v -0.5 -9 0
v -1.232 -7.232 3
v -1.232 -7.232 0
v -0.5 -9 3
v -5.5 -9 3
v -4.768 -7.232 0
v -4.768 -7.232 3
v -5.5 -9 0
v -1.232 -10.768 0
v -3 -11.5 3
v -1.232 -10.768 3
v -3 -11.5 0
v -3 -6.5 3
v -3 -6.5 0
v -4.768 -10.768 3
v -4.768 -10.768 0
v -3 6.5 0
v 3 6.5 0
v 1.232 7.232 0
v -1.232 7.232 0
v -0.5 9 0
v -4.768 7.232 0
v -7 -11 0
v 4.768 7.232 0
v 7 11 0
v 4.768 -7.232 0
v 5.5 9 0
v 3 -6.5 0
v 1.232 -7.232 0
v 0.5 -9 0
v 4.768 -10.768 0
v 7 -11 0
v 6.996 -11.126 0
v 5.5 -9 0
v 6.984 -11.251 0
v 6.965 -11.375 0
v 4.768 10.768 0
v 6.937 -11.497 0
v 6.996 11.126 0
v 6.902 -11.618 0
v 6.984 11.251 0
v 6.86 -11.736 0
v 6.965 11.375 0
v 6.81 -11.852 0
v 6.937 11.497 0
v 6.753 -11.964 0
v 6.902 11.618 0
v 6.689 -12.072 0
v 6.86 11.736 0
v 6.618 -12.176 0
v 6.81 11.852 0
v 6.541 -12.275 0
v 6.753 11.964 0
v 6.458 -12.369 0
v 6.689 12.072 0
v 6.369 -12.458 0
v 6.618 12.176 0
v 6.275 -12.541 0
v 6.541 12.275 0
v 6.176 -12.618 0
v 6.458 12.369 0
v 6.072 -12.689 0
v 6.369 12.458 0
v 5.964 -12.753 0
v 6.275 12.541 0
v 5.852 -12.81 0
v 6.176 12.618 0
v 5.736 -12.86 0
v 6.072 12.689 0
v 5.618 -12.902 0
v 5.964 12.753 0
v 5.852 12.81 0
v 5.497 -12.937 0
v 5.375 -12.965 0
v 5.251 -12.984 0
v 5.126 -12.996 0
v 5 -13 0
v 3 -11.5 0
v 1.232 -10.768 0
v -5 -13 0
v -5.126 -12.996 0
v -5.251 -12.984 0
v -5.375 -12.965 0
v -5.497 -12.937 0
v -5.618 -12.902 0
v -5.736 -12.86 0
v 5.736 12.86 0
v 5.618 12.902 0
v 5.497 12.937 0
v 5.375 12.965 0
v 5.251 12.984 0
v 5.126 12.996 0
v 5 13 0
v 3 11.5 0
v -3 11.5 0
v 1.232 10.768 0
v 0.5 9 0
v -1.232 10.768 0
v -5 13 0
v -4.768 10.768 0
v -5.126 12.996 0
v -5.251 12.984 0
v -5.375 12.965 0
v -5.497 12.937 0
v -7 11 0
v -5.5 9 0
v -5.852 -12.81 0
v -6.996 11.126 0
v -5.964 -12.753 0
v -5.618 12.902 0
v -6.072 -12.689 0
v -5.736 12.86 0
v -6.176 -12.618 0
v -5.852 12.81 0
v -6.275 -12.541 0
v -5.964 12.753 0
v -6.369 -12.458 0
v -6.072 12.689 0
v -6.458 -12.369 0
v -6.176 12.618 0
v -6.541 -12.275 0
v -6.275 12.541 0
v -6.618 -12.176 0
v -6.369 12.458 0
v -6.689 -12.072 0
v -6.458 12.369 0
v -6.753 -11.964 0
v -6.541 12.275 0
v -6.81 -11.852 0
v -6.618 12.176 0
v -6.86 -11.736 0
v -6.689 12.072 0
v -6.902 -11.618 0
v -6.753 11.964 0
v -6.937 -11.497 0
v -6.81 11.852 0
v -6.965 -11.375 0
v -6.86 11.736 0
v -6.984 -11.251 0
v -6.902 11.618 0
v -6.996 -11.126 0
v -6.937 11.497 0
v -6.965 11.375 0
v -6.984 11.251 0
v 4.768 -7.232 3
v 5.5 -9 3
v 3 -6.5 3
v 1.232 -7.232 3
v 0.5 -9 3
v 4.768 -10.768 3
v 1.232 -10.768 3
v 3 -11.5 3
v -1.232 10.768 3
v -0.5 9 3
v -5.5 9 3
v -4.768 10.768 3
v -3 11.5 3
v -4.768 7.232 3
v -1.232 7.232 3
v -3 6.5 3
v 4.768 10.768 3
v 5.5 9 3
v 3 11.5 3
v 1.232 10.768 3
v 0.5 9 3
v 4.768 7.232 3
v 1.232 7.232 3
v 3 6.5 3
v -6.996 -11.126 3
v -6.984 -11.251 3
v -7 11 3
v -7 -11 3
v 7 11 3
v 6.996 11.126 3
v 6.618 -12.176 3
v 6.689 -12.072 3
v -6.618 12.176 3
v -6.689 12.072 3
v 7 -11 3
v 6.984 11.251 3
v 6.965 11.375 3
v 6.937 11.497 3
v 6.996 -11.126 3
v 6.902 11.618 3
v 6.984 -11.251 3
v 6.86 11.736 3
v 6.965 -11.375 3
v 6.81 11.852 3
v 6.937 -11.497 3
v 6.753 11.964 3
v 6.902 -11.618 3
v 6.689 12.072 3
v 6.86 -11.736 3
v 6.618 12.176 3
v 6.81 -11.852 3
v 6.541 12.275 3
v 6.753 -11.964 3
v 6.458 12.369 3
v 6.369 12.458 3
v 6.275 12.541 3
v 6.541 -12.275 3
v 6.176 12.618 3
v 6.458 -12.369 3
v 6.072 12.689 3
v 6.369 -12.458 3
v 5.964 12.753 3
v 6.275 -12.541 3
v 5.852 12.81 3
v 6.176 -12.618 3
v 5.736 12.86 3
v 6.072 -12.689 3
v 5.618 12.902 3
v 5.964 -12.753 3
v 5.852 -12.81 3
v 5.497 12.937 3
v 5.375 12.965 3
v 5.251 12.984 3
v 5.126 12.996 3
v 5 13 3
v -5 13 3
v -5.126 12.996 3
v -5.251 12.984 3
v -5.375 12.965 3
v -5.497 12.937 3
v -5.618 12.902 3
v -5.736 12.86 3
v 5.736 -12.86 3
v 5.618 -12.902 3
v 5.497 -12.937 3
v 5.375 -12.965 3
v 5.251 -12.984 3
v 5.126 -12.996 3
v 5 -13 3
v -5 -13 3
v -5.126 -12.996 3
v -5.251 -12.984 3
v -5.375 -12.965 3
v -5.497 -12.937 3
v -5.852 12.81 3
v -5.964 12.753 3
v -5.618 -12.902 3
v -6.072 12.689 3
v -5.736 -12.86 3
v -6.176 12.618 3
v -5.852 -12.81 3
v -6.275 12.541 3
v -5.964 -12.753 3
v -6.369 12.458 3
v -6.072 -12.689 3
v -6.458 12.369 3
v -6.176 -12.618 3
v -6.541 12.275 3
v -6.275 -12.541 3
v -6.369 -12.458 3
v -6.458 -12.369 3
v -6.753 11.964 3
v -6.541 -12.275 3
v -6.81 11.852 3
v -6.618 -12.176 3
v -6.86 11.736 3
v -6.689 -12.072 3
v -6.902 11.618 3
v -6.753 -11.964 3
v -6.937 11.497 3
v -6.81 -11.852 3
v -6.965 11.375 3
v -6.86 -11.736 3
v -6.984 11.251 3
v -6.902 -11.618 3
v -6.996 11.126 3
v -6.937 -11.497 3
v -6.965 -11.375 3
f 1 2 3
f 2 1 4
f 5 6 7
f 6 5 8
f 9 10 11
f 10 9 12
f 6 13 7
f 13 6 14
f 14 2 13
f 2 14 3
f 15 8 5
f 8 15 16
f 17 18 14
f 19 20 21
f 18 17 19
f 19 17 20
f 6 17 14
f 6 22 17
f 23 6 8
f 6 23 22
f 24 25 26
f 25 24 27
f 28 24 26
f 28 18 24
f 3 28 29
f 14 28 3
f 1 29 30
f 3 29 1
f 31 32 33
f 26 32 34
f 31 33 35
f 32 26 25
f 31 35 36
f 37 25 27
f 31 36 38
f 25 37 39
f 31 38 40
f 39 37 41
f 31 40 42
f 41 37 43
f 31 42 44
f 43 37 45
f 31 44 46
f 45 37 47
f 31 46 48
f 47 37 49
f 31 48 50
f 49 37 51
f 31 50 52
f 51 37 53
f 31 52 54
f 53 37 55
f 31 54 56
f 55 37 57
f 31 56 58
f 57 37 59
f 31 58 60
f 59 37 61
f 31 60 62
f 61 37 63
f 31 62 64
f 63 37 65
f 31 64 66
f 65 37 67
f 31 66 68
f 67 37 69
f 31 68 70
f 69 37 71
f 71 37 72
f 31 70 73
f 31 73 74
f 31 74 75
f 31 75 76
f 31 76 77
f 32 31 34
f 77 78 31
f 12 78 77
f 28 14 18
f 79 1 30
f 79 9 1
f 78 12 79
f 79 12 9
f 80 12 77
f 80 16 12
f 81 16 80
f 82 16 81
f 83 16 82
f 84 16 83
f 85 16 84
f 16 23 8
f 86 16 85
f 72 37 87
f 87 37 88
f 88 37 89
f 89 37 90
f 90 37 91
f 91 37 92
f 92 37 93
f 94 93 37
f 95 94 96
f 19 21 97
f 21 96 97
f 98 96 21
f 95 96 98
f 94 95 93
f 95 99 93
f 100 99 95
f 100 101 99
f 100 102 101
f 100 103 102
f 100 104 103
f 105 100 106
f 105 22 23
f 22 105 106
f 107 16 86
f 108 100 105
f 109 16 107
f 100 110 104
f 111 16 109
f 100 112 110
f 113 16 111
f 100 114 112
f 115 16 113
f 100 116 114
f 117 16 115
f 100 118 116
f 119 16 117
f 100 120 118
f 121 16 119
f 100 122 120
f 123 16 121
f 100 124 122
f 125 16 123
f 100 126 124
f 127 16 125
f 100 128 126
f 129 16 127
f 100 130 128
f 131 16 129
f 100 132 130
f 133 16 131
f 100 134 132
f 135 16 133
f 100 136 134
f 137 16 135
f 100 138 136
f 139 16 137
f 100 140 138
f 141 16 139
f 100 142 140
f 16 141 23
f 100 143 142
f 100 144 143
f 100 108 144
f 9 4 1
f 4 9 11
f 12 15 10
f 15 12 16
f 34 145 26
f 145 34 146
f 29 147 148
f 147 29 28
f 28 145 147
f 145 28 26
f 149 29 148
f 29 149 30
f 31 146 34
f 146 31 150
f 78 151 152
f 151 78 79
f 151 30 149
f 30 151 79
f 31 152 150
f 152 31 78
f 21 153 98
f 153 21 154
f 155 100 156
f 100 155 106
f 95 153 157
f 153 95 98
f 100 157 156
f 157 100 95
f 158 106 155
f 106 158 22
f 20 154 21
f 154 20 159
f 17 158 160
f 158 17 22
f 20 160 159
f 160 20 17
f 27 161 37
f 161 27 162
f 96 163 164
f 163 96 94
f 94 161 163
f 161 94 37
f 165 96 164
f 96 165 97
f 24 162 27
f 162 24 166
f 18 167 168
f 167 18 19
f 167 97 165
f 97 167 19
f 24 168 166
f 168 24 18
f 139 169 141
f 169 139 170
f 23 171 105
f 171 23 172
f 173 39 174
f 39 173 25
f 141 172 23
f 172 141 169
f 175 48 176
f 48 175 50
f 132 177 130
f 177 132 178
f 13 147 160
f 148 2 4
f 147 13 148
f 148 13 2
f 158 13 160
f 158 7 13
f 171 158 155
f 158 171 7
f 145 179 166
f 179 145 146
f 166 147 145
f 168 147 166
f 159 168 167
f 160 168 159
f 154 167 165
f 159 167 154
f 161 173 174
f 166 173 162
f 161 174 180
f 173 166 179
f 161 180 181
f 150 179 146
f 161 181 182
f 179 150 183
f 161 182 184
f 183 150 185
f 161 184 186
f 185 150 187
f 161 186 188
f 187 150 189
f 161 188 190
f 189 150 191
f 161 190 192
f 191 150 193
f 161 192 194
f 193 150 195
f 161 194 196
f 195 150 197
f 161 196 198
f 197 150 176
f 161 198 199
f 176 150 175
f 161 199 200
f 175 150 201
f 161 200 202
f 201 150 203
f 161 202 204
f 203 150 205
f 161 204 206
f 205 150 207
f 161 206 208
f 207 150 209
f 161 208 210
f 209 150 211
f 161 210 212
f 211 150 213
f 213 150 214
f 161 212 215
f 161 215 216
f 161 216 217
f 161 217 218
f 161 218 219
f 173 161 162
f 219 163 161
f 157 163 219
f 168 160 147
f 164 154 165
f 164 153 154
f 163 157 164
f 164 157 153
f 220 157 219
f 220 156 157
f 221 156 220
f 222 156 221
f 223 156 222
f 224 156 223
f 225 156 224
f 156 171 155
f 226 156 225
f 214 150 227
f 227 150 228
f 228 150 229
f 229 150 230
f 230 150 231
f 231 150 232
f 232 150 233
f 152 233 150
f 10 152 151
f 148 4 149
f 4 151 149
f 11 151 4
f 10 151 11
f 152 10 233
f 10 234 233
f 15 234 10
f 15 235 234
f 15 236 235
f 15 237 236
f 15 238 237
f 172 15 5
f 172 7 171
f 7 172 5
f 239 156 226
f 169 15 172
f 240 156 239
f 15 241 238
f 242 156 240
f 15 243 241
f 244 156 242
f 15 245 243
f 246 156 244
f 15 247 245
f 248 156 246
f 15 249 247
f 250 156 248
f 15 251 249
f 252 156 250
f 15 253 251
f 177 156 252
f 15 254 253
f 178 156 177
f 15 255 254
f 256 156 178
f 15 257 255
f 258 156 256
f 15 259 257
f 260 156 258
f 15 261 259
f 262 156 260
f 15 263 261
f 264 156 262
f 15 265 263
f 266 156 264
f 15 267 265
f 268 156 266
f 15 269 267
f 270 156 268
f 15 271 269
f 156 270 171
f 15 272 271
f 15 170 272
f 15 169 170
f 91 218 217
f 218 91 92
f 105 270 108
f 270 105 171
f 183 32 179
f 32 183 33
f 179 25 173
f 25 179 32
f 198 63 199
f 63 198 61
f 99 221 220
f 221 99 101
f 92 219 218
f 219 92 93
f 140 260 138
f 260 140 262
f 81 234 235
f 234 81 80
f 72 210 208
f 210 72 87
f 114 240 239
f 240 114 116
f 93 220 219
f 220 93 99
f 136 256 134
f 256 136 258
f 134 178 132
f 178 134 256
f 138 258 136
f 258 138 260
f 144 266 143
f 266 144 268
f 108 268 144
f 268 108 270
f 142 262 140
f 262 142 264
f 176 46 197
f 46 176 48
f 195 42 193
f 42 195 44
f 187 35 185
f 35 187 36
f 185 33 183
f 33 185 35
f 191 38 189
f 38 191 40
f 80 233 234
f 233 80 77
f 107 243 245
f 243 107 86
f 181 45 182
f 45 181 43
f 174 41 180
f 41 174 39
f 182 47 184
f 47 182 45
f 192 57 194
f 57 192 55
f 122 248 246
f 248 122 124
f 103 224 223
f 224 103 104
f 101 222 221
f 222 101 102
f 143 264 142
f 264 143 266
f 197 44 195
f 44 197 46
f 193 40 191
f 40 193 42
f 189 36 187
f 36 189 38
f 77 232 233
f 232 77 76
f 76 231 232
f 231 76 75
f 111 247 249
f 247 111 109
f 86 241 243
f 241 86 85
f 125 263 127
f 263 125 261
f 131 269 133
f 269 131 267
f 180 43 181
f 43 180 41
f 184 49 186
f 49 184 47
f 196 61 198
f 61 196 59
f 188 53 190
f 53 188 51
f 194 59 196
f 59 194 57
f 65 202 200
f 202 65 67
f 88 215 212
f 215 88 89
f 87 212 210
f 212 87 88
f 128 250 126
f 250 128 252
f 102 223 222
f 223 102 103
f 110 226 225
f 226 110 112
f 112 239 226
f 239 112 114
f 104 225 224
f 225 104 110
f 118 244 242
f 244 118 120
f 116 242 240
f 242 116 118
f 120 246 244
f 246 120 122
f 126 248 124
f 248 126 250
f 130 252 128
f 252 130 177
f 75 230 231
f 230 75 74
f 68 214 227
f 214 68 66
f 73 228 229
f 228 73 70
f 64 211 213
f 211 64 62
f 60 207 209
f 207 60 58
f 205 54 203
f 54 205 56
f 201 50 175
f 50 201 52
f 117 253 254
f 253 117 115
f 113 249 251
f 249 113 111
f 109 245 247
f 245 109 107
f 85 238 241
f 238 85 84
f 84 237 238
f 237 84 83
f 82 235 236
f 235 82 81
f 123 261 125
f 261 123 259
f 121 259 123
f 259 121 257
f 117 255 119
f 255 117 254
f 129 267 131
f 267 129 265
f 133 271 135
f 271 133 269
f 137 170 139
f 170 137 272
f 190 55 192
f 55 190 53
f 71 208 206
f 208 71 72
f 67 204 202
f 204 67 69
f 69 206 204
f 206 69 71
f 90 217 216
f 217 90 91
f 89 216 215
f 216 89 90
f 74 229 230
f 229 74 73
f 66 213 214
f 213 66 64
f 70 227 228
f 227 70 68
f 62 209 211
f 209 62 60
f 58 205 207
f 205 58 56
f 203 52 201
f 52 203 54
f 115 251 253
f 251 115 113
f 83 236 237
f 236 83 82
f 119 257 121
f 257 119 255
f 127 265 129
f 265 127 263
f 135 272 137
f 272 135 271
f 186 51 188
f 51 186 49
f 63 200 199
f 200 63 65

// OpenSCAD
// Porch tabs. These use plastic rivets to brace the poro are required.
length = 24;
height  = 3;
width  = 12;
radius = 2.5;  // Hole radius
// Returns a plate centered on the origin
module tab(x,y,z) {
    round_radius=2;  // Radius of the corner arcs
    $fn=100;
    linear_extrude(height=z) {
        hull() {
            // place 4 circles in the corners, with the given radius
            translate([(-x/2)+(round_radius/2), (-y/2)+(round_radius/2), 0])
            circle(r=round_radius);

            translate([(x/2)-(round_radius/2), (-y/2)+(round_radius/2), 0])
            circle(r=round_radius);

            translate([(-x/2)+(round_radius/2), (y/2)-(round_radius/2), 0])
            circle(r=round_radius);

            translate([(x/2)-(round_radius/2), (y/2)-(round_radius/2), 0])
            circle(r=round_radius);
        }
    }
}
module holes(x,y,z,hole_radius) {
    pad = 0.5;
    for(i=[[-x/2+hole_radius+pad,-y/2+hole_radius+pad],[x/2-hole_radius-pad,-y/2+hole_radius+pad],
            [-x/2+hole_radius+pad,y/2-hole_radius-pad],[x/2-hole_radius-pad,y/2-hole_radius-pad]]) {
        translate(i)
        cylinder(r=hole_radius,h=z);
    }
}

difference() {
    tab(width,length,height);
    holes(width,length,height,radius);
}
